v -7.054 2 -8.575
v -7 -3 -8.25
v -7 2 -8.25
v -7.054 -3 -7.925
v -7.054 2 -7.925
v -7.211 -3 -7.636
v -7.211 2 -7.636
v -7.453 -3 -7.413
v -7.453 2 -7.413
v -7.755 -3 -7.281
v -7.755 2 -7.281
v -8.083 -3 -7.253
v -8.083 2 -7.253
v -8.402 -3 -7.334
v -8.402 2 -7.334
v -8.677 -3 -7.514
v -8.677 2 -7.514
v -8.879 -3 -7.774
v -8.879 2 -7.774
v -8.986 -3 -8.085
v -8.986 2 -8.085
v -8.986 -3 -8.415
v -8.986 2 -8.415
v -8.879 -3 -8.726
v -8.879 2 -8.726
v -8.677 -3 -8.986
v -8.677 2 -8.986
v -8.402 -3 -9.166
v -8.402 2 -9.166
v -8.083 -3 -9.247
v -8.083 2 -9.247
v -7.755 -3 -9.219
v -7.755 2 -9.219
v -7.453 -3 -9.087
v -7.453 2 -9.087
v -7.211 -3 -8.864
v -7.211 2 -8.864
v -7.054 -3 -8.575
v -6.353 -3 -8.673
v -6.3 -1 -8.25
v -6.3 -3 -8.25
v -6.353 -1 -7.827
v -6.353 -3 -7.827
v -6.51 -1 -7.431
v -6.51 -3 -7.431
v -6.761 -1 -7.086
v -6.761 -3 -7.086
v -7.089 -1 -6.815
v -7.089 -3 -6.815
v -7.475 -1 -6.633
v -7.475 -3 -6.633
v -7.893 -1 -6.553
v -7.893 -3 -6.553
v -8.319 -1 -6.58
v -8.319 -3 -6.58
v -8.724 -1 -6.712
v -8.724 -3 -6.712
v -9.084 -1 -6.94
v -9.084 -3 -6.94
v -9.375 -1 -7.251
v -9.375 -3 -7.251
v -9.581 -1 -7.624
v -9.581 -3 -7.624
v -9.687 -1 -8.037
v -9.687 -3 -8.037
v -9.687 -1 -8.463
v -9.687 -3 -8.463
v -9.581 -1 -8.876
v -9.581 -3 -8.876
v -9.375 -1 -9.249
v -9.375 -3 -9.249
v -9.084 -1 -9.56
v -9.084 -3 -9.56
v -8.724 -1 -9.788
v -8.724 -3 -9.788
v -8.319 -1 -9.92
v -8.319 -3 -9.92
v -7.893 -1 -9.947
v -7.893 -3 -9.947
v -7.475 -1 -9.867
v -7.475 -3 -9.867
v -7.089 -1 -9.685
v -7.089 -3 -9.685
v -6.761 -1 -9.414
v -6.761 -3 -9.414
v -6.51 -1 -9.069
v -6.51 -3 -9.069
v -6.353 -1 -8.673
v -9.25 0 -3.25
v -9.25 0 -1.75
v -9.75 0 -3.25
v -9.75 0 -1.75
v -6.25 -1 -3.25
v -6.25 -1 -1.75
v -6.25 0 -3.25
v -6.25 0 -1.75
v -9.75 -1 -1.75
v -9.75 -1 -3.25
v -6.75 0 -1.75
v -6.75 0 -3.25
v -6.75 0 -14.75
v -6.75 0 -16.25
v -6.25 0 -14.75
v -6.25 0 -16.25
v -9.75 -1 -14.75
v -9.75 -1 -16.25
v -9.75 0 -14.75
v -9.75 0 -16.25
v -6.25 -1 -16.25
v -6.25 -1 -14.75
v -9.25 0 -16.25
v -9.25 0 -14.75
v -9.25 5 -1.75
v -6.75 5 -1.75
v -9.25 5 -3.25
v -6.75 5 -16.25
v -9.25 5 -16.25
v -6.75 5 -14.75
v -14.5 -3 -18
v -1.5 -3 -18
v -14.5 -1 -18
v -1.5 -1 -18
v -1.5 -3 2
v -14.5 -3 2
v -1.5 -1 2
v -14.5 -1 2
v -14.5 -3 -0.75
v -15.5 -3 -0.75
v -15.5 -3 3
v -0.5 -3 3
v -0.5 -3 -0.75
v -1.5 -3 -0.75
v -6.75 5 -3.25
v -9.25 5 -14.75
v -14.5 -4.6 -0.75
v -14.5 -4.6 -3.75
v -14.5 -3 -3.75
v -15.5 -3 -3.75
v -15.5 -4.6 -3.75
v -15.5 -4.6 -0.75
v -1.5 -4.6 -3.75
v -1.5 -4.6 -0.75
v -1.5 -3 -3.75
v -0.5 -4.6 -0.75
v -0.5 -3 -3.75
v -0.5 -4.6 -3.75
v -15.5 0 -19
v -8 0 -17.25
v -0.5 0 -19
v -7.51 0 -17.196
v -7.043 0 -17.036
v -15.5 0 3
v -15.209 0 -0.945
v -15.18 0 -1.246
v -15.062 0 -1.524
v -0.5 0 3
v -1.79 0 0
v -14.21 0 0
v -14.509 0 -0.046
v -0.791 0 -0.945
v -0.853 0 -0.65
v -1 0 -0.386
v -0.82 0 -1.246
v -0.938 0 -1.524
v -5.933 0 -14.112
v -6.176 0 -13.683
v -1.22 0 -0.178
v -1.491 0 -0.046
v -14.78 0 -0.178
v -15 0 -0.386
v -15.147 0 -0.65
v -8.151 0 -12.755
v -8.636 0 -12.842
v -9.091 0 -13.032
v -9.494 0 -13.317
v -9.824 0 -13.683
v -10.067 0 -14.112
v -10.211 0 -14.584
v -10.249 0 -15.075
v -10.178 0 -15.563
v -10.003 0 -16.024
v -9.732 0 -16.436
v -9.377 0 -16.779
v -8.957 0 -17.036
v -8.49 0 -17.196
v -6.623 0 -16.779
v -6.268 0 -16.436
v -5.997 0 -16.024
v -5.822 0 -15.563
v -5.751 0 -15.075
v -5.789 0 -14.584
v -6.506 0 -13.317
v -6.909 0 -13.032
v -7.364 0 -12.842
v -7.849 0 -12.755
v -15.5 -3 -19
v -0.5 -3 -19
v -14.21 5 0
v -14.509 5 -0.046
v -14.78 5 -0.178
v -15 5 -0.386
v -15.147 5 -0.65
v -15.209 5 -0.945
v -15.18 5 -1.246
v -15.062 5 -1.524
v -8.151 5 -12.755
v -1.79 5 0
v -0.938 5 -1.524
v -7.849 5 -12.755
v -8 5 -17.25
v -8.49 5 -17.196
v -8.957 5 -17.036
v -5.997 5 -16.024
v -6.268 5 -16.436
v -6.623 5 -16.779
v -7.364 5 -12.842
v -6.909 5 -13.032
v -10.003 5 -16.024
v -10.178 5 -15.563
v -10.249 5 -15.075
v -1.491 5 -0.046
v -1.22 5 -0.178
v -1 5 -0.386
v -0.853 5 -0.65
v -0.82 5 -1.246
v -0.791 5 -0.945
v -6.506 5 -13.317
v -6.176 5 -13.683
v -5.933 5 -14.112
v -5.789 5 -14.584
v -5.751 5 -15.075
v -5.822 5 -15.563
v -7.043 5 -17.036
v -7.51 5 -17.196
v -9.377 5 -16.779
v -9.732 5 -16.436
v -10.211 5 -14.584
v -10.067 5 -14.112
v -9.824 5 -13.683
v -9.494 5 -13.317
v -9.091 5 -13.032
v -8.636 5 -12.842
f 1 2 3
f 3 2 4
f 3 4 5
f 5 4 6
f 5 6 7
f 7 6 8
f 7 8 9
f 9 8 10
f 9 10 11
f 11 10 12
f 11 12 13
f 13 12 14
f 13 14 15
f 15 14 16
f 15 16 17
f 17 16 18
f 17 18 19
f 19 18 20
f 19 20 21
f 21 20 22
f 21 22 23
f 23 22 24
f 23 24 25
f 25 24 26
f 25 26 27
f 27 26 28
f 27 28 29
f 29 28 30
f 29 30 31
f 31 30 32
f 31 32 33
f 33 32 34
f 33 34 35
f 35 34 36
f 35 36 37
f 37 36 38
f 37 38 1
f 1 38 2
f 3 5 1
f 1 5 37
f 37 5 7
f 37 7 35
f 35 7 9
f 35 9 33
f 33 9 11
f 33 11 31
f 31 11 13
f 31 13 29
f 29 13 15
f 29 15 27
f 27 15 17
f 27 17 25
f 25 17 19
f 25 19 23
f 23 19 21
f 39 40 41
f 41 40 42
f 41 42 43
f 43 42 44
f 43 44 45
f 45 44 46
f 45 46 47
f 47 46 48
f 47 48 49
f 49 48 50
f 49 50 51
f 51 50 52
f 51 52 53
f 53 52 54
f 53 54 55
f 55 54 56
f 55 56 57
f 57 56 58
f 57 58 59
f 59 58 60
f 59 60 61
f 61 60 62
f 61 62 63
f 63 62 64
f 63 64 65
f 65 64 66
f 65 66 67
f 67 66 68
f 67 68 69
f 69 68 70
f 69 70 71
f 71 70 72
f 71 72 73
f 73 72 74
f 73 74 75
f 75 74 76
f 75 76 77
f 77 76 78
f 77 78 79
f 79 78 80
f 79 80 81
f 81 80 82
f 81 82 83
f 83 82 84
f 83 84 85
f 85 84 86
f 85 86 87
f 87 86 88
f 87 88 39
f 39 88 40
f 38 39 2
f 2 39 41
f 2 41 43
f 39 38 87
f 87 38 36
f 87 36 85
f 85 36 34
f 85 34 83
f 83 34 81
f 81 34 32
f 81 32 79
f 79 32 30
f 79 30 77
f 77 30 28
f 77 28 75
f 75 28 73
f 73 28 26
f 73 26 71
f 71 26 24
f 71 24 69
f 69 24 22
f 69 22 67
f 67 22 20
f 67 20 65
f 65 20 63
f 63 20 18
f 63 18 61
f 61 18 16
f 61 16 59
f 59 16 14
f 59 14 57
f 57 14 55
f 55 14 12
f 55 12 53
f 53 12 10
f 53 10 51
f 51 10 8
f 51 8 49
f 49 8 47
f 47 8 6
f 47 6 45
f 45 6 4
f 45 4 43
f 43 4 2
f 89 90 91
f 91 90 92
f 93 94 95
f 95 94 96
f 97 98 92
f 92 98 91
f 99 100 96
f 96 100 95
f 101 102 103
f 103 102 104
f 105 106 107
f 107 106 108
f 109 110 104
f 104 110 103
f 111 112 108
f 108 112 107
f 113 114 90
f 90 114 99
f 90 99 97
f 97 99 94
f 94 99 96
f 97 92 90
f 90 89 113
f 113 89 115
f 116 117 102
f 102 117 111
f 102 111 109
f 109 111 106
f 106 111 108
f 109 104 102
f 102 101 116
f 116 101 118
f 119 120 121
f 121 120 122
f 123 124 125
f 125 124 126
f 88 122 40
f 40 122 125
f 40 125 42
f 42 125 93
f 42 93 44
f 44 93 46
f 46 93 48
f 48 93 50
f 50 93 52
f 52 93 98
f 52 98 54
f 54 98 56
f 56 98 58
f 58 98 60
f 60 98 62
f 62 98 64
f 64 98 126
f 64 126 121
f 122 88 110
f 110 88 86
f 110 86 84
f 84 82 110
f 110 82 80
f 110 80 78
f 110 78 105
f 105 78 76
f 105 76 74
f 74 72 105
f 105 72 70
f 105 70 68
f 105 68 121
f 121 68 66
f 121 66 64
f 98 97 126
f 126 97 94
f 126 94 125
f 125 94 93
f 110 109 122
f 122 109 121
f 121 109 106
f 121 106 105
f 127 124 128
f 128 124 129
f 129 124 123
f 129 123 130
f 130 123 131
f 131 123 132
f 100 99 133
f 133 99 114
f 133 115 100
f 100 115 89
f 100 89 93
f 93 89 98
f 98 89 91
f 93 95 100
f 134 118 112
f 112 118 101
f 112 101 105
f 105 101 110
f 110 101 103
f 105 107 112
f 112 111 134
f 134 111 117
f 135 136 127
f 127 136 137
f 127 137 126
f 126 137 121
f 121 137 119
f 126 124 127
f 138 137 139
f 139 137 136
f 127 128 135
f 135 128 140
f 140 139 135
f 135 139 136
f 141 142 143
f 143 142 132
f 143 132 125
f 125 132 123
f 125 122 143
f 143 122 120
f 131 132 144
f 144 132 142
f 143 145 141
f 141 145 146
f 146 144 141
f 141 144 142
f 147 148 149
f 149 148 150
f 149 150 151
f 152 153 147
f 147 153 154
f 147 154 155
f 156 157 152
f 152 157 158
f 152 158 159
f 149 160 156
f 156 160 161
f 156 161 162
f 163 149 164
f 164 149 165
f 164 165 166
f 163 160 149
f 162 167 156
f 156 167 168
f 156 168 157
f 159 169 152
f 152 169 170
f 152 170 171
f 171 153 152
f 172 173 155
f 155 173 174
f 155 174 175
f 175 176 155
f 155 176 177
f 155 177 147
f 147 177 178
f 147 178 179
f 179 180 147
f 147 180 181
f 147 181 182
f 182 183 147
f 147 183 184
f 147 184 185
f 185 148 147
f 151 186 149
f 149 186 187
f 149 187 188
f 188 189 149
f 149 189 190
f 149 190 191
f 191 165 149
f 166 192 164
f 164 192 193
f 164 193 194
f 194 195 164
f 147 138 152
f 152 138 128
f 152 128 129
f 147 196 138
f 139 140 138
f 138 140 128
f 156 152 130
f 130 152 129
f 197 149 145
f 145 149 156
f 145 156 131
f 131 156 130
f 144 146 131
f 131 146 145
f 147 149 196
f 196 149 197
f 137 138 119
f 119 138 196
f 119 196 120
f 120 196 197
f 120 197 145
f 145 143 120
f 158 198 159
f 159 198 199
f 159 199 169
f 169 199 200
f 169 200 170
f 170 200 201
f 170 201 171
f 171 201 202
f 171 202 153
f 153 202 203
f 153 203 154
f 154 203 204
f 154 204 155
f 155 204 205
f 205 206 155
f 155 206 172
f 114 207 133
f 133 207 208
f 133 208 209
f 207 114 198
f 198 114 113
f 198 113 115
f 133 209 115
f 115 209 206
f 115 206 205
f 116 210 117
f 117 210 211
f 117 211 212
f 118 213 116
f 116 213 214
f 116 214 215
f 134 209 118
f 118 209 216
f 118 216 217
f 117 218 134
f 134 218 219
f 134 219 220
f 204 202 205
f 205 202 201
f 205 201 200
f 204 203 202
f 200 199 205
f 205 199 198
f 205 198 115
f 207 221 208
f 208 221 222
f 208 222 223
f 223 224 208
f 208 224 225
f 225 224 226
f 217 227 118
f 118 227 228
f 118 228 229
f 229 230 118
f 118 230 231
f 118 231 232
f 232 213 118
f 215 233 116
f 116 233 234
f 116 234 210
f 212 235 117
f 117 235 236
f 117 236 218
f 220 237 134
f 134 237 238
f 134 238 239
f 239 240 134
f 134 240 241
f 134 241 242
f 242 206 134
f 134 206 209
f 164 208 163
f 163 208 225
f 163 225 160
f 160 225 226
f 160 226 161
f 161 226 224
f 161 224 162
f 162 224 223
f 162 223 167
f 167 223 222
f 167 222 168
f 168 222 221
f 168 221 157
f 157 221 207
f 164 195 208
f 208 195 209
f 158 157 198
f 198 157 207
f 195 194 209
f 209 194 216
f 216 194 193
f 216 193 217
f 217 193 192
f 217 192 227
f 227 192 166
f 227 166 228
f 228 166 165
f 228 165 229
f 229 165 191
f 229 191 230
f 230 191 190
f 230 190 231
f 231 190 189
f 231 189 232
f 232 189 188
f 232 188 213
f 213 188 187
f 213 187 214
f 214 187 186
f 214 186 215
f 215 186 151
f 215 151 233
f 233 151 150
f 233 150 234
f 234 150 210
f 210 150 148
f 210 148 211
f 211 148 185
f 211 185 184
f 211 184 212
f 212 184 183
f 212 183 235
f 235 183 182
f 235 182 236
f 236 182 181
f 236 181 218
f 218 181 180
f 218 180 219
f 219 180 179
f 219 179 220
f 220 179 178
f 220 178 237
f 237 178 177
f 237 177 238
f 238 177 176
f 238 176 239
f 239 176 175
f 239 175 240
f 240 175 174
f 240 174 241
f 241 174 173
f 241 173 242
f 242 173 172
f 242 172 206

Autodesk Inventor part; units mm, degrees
ref_plane "YZ Plane" through (0, 0, 0) normal (1, 0, 0) x (0, 1, 0)
ref_plane "XZ Plane" through (0, 0, 0) normal (0, 1, 0) x (-1, 0, 0)
ref_plane "XY Plane" through (0, 0, 0) normal (0, 0, 1) x (1, 0, 0)
sketch "Sketch5" plane through (0, 0, 0) normal (0, 1, 0) x (-1, 0, 0)
  line L0 (-3.1299, 16.302) -> (-3.1299, -27.8812) construction
  line L1 (-3.1299, -27.8812) -> (-19.0358, -27.8812) construction
  line L2 (-19.0358, -27.8812) -> (-19.0358, 16.302) construction
  line L3 (-19.0358, 16.302) -> (-3.1299, 16.302) construction
  line L4 (0, 0) -> (16, 0)
  line L5 (8, 0) -> (8, -24.9508) construction
  line L6 (16, 0) -> (8, -13)
  line L7 (8, -13) -> (0, 0)
  circle A0 centre (8, -15) radius 2.25
  line L8 (0, 0) -> (0, -12.5098) construction
  point P0 (7.8493, -12.7551)
  point P1 (8.1507, -12.7551)
  dimension "d36" = 16
  dimension "d42" = 13
  dimension "d43" = 2
  dimension "d143" = 4.5
extrude "Extrusion4" add sketch "Sketch5" along normal blind 5
sketch "Sketch6" plane through (0, 5, 0) normal (0, 1, 0) x (1, 0, 0)
  arc A0 (-7.8493, 12.7551) -> (-8.1507, 12.7551) centre (-8, 15) ccw projected
  circle A1 centre (-8, 15) radius 1.75
  line L0 (-16, 0) -> (0, 0) projected
  line L1 (-16, 0) -> (0, 0) construction
  line L2 (-14.2104, 1) -> (-8, 11.092)
  line L3 (-8.1507, 12.7551) -> (-16, 0) projected
  line L4 (-8, 11.092) -> (-1.7896, 1)
  line L5 (0, 0) -> (-7.8493, 12.7551) projected
  line L6 (-14.2104, 1) -> (-1.7896, 1)
  line L7 (-8, 15) -> (-8, 0) construction
  dimension "d46" = 0.5
  dimension "d52" = 1
  dimension "d53" = 1
extrude "Extrusion5" [suppressed]
fillet "Fillet1" radius 1 2 edges at (0, 2.5, 0) (-16, 2.5, 0)
sketch "Sketch9" plane through (0, 0, 0) normal (0, -1, 0) x (1, 0, 0)
  line L0 (-15.5, 3) -> (-0.5, 3)
  line L1 (-0.5, 3) -> (-0.5, -19)
  line L2 (-0.5, -19) -> (-15.5, -19)
  line L3 (-15.5, -19) -> (-15.5, 3)
  line L4 (-15.5, 3) -> (-0.5, -19) construction
  line L5 (-0.5, 3) -> (-15.5, -19) construction
  line L6 (-14.2104, 0) -> (-1.7896, 0) projected
  line L7 (-8, -15) -> (-8, 0) construction
  arc A0 (-8.1507, -12.7551) -> (-7.8493, -12.7551) centre (-8, -15) ccw construction
  circle A1 centre (-8, -15) radius 2.1568 construction
  point P0 (0, 0)
  point P1 (-8, -8)
  dimension "d75" = 15
  dimension "d76" = 22
  dimension "d77" = 3
extrude "Extrusion7" add sketch "Sketch9" along normal blind 3
sketch "Sketch10" plane through (0, -3, 0) normal (0, -1, 0) x (1, 0, 0)
  line L0 (-0.5, -19) -> (-0.5, 3) projected
  line L1 (-0.5, -0.75) -> (-1.5, -0.75)
  line L2 (-1.5, -0.75) -> (-1.5, -3.75)
  line L3 (-1.5, -3.75) -> (-0.5, -3.75)
  line L4 (-0.5, -3.75) -> (-0.5, -0.75)
  line L5 (-15.5, 3) -> (-15.5, -19) projected
  line L6 (-15.5, -0.75) -> (-14.5, -0.75)
  line L7 (-14.5, -0.75) -> (-14.5, -3.75)
  line L8 (-14.5, -3.75) -> (-15.5, -3.75)
  line L9 (-15.5, -3.75) -> (-15.5, -0.75)
  line L10 (-0.5, 3) -> (-15.5, 3) projected
  point P0 (0, 0)
  point P1 (-15.5, -3.75)
  point P2 (-0.5, -3.75)
  dimension "d80" = 1
  dimension "d81" = 3
  dimension "d82" = 1
  dimension "d83" = 3
  dimension "d84" = 3.75
  dimension "d85" = 3.75
extrude "Extrusion8" add sketch "Sketch10" along normal blind 1.6
sketch "Sketch11" plane through (0, -3, 0) normal (0, -1, 0) x (1, 0, 0)
  line L0 (-9.25, -1.75) -> (-6.75, -1.75)
  line L1 (-6.75, -1.75) -> (-6.75, -3.25)
  line L2 (-6.75, -3.25) -> (-9.25, -3.25)
  line L3 (-9.25, -3.25) -> (-9.25, -1.75)
  line L4 (-8, 0) -> (-8, -15.1696) construction
  line L5 (-15.5, -19) -> (-0.5, -19) construction
  line L6 (-8, -19) -> (-8, 3) construction
  line L7 (-0.5, 3) -> (-15.5, 3) construction
  line L8 (-1.5, -0.75) -> (-1.5, -3.75) projected
  line L9 (-14.5, -3.75) -> (-14.5, -0.75) projected
  line L10 (-0.5, -0.75) -> (-1.5, -0.75) projected
  line L11 (-15.5, -3.75) -> (-15.5, -19) projected
  line L12 (-6.75, -14.75) -> (-9.25, -14.75)
  line L13 (-9.25, -14.75) -> (-9.25, -16.25)
  line L14 (-9.25, -16.25) -> (-6.75, -16.25)
  line L15 (-6.75, -16.25) -> (-6.75, -14.75)
  line L16 (-6.75, -14.75) -> (-9.25, -16.25) construction
  line L17 (-9.25, -14.75) -> (-6.75, -16.25) construction
  line L18 (-1.5, -3.75) -> (-0.5, -3.75) projected
  point P0 (0, 0)
  point P1 (-8, -1.75)
  point P2 (-9.25, -2.5)
  point P3 (-8, -3.25)
  point P4 (-8, 0)
  point P5 (-8, -8)
  point P6 (-6.75, -2.5)
  point P7 (-8, -15.5)
  point P8 (-6.75, -15.5)
  dimension "d129" = 7.5
  dimension "d133" = 1.5
  dimension "d136" = 2.5
  dimension "d137" = 1.5
  dimension "d138" = 13
  dimension "d141" = 0.5
extrude "Extrusion9" cut sketch "Sketch11" against normal blind 16
sketch "Sketch13" plane through (0, -3, 0) normal (0, -1, 0) x (1, 0, 0)
  line L0 (-1.5, 2) -> (-14.5, 2)
  line L1 (-14.5, 2) -> (-14.5, -18)
  line L2 (-14.5, -18) -> (-1.5, -18)
  line L3 (-1.5, -18) -> (-1.5, 2)
  line L4 (-0.5, 3) -> (-15.5, 3) projected
  line L5 (-0.5, -0.75) -> (-0.5, 3) projected
  line L6 (-15.5, 3) -> (-15.5, -0.75) projected
  line L7 (-15.5, -19) -> (-0.5, -19) projected
  point P0 (0, 0)
  point P1 (-15.5, 1.125)
  dimension "d106" = 1
  dimension "d107" = 1
  dimension "d108" = 1
  dimension "d109" = 1
extrude "Extrusion11" cut sketch "Sketch13" against normal blind 2
sketch "Sketch14" plane through (0, -1, 0) normal (0, -1, 0) x (1, 0, 0)
  line L0 (-9.25, -14.75) -> (-9.25, -16.25) construction
  line L1 (-9.25, -15.5) -> (-6.75, -15.5) construction
  line L2 (-6.75, -16.25) -> (-6.75, -14.75) construction
  line L3 (-9.25, -16.25) -> (-6.75, -16.25) construction
  line L4 (-8, -16.25) -> (-8, -1.75) construction
  line L5 (-6.75, -1.75) -> (-9.25, -1.75) construction
  line L6 (-9.25, -1.75) -> (-9.25, -3.25) construction
  line L7 (-9.25, -2.5) -> (-6.75, -2.5) construction
  line L8 (-6.25, -16.25) -> (-9.75, -16.25)
  line L9 (-9.75, -16.25) -> (-9.75, -14.75)
  line L10 (-9.75, -14.75) -> (-6.25, -14.75)
  line L11 (-6.25, -14.75) -> (-6.25, -16.25)
  line L12 (-6.25, -16.25) -> (-9.75, -14.75) construction
  line L13 (-9.75, -16.25) -> (-6.25, -14.75) construction
  line L14 (-6.25, -1.75) -> (-9.75, -1.75)
  line L15 (-9.75, -1.75) -> (-9.75, -3.25)
  line L16 (-9.75, -3.25) -> (-6.25, -3.25)
  line L17 (-6.25, -3.25) -> (-6.25, -1.75)
  line L18 (-6.25, -1.75) -> (-9.75, -3.25) construction
  line L19 (-9.75, -1.75) -> (-6.25, -3.25) construction
  point P0 (0, 0)
  point P1 (-8, -15.5)
  point P2 (-8, -2.5)
  dimension "d139" = 3.5
  dimension "d140" = 1.5
extrude "Extrusion12" cut sketch "Sketch14" against normal blind 1
sketch "Sketch15" plane through (0, -1, 0) normal (0, -1, 0) x (1, 0, 0)
  circle A0 centre (-8, -8.25) radius 1
  line L0 (-8, 0) -> (-8, -15) construction
  circle A1 centre (-8, -8.25) radius 1.7
  line L1 (-14.5, 2) -> (-1.5, 2) projected
  line L2 (-9.25, -3.25) -> (-6.75, -3.25) projected
  point P0 (0, 0)
  point P1 (-10.0959, -3.25)
  point P2 (-13.4041, -3.25)
  point P3 (-6.25, -3.25)
  point P4 (-9.75, -3.25)
  dimension "d117" = 2
  dimension "d118" = 0.7
  dimension "d131" = 10.25
extrude "Extrusion13" add sketch "Sketch15" along normal blind 2 contours A0 | A1
sketch "Sketch17" plane through (0, -1, 0) normal (0, -1, 0) x (1, 0, 0)
  point P0 (0, 0)
sketch "Sketch16" plane through (-8, -3, -8.25) normal (0, -1, 0) x (1, 0, 0)
  circle A0 centre (0, 0) radius 1.7 projected
  circle A1 centre (0, 0) radius 1
  point P0 (8, 8.25)
  point P1 (-1.9339, 0.25)
  point P2 (1.9339, 0.25)
  dimension "d123" = 2
  dimension "d60" = 2.5
  dimension "d61" = 0.7
  dimension "d62" = 2.5
  dimension "d63" = 1.5
  dimension "d68" = 13
  dimension "d69" = 3.75
  dimension "d70" = 3.75
  dimension "d72" = 3.75
  dimension "d0" = 15
  dimension "d2" = 10
  dimension "d11" = 5
  dimension "d12" = 1.8
extrude "Extrusion14" cut sketch "Sketch16" against normal blind 5 contours A1
properties part number "NOTGATE"
